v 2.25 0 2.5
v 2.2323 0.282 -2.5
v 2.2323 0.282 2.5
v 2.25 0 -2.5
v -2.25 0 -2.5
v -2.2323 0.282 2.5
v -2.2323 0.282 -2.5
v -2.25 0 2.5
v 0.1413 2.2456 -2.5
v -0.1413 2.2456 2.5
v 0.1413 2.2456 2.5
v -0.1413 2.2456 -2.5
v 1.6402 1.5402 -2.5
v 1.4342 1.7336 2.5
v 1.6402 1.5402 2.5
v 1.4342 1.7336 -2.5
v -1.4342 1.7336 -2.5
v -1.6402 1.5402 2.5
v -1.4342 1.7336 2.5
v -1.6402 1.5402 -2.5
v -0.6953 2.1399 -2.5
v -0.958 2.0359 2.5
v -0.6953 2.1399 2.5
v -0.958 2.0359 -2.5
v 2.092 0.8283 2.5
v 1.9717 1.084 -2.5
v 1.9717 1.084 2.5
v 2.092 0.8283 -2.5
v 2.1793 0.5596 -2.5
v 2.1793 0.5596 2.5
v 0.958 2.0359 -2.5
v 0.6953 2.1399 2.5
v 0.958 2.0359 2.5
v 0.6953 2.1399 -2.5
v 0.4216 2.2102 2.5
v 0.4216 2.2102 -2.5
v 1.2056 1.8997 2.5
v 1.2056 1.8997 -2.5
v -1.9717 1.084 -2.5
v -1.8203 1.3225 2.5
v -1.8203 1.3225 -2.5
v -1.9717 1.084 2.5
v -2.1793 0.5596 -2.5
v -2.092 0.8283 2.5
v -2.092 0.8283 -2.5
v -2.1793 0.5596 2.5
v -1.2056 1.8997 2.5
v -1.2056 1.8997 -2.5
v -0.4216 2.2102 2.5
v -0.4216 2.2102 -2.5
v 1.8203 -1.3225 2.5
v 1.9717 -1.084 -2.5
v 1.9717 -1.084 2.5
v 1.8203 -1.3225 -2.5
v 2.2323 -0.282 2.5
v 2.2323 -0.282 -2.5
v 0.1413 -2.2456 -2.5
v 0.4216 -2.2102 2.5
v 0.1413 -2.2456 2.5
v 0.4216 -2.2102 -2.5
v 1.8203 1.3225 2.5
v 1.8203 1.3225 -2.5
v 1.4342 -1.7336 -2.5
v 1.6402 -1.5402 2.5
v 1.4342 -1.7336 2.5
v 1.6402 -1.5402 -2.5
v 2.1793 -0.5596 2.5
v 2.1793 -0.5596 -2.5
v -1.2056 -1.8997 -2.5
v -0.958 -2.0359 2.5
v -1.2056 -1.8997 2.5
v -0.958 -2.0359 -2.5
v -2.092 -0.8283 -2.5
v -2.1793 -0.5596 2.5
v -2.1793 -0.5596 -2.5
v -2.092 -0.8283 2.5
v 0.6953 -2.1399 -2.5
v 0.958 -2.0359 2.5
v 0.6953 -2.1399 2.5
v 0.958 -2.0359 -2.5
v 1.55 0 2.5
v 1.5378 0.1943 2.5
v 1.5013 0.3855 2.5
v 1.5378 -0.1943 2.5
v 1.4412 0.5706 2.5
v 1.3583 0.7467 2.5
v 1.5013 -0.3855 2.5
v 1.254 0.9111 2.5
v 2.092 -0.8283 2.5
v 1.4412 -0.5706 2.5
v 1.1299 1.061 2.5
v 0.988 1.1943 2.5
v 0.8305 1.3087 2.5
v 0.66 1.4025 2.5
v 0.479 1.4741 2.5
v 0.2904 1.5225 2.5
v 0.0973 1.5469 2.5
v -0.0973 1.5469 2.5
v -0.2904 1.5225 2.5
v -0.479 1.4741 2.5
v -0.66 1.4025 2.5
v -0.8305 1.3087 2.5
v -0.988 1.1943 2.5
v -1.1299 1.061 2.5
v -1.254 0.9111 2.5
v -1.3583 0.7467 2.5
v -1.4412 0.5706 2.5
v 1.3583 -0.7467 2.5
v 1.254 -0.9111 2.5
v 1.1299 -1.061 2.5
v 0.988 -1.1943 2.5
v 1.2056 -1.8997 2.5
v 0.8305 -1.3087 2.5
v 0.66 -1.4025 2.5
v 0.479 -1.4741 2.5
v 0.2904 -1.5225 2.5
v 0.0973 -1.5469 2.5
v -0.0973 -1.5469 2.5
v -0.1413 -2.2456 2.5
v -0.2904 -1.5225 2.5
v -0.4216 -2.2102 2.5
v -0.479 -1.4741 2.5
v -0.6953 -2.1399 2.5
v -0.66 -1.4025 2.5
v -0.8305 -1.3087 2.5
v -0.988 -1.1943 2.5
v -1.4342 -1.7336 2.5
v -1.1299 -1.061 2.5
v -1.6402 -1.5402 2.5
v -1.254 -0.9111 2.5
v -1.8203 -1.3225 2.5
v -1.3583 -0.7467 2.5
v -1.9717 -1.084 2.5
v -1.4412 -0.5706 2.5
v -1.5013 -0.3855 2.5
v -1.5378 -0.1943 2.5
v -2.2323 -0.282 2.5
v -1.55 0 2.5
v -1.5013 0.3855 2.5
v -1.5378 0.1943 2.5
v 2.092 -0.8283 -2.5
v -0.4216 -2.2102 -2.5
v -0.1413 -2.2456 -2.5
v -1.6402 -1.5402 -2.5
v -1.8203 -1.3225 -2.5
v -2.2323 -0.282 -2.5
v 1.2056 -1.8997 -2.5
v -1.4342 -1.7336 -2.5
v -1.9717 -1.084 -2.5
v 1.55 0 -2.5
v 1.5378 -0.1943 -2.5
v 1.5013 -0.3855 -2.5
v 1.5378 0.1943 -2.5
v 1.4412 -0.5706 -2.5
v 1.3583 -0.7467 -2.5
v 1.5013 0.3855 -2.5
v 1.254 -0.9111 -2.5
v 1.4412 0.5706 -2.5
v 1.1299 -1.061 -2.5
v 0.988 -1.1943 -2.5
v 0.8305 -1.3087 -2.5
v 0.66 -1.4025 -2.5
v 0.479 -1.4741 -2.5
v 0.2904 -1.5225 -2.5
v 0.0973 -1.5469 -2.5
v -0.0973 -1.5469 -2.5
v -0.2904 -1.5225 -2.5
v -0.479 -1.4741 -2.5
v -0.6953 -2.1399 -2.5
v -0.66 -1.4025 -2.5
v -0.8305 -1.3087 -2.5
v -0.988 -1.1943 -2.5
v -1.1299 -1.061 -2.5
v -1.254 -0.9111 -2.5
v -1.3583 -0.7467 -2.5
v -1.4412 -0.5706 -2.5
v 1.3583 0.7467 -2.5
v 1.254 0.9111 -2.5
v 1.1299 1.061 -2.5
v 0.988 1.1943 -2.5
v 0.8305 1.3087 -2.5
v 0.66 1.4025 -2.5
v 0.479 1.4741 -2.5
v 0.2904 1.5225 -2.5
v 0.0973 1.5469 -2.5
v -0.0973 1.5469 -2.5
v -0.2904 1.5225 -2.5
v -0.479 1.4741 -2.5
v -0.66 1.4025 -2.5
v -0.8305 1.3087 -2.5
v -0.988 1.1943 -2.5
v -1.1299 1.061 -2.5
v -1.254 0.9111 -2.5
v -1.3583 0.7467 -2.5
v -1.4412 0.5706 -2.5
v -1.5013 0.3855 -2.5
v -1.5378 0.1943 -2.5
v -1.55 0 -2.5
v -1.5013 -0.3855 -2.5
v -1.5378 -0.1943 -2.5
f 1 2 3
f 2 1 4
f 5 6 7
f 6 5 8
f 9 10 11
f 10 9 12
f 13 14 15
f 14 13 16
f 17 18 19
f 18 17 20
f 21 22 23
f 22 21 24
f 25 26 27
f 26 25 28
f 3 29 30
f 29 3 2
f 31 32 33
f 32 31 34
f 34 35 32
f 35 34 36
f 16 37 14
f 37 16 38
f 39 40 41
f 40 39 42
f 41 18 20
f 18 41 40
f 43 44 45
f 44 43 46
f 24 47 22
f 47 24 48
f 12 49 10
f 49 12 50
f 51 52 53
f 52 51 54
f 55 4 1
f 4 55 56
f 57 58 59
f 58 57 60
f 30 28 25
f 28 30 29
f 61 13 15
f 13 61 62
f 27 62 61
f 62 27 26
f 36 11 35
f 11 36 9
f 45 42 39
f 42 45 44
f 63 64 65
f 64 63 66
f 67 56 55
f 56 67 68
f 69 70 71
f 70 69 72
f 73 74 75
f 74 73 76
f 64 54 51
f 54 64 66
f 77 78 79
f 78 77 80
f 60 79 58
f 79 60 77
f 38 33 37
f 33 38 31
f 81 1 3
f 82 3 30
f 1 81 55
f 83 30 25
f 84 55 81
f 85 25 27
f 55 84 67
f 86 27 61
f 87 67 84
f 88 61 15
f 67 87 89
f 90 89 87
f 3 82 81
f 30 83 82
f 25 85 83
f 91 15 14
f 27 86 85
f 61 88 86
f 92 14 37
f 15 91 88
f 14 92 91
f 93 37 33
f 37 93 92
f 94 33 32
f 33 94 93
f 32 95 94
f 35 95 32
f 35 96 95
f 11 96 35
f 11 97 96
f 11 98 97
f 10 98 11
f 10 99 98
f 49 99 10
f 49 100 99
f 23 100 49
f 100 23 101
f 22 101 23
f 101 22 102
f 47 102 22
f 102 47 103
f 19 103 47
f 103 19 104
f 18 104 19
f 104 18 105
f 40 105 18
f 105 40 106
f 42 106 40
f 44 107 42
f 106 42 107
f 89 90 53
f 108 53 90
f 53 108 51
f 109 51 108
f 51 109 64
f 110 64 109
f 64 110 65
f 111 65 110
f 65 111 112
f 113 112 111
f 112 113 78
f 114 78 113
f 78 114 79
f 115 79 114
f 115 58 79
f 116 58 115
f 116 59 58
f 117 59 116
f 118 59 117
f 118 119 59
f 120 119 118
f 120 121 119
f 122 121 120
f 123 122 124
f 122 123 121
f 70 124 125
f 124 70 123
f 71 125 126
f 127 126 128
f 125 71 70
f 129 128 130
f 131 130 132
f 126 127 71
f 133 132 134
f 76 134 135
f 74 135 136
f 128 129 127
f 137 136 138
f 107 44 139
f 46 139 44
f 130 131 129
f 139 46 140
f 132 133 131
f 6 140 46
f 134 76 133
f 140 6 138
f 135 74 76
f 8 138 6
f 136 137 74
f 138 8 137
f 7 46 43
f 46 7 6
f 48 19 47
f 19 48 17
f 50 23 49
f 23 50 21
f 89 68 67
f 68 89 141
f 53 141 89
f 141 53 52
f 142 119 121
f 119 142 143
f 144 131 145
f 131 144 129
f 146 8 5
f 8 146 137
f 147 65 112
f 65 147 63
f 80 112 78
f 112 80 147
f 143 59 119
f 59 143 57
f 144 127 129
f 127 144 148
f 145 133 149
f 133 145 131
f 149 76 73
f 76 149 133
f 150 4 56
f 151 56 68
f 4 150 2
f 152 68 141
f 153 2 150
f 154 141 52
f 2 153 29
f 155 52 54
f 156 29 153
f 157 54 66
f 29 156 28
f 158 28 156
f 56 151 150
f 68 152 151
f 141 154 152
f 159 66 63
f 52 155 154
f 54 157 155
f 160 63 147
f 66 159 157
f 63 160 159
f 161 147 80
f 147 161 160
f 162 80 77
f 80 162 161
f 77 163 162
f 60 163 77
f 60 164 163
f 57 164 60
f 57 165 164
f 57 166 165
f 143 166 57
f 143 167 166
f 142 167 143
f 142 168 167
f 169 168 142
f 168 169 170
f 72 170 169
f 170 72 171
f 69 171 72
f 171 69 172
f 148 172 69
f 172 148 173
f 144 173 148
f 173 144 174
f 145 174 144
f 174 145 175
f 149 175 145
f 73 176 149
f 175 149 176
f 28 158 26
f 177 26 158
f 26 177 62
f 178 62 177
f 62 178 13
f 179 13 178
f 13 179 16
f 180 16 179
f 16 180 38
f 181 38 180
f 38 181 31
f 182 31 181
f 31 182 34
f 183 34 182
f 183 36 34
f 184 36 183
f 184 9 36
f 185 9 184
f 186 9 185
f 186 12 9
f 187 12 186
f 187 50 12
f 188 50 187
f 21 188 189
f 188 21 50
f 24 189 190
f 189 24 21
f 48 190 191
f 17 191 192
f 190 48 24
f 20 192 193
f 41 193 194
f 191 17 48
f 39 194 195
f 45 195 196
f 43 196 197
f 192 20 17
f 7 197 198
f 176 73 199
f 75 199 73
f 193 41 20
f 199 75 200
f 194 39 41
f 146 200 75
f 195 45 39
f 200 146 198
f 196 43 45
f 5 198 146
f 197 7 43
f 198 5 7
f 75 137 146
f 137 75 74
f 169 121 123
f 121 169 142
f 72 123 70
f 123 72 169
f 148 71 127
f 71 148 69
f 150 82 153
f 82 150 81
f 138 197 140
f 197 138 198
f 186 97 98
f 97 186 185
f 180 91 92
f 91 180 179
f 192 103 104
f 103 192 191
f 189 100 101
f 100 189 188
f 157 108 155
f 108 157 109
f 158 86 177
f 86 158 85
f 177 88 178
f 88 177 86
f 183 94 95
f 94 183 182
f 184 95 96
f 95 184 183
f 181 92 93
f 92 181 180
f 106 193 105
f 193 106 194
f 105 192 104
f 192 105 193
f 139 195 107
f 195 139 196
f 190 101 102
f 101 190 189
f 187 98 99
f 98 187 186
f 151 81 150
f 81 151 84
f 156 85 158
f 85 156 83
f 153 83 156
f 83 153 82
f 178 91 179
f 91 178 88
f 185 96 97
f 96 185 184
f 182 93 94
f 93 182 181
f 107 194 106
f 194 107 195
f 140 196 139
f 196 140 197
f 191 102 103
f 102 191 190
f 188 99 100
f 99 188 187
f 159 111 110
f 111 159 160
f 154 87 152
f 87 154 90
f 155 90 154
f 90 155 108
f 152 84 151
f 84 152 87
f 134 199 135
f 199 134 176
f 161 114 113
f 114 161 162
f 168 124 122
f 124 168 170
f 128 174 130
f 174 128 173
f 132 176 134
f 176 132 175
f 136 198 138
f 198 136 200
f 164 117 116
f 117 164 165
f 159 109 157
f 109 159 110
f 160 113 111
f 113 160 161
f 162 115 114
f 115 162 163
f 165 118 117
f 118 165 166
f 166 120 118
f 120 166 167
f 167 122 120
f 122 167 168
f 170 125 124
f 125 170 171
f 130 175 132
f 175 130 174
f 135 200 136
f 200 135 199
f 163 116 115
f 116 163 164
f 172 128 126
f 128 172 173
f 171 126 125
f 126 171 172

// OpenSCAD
$fn = 50;


difference() {
	union() {
		translate(v = [0, 0, -2.5000000000]) {
			cylinder(h = 5, r = 2.2500000000);
		}
	}
	union() {
		translate(v = [0, 0, -100.0000000000]) {
			cylinder(h = 200, r = 1.5500000000);
		}
	}
}
